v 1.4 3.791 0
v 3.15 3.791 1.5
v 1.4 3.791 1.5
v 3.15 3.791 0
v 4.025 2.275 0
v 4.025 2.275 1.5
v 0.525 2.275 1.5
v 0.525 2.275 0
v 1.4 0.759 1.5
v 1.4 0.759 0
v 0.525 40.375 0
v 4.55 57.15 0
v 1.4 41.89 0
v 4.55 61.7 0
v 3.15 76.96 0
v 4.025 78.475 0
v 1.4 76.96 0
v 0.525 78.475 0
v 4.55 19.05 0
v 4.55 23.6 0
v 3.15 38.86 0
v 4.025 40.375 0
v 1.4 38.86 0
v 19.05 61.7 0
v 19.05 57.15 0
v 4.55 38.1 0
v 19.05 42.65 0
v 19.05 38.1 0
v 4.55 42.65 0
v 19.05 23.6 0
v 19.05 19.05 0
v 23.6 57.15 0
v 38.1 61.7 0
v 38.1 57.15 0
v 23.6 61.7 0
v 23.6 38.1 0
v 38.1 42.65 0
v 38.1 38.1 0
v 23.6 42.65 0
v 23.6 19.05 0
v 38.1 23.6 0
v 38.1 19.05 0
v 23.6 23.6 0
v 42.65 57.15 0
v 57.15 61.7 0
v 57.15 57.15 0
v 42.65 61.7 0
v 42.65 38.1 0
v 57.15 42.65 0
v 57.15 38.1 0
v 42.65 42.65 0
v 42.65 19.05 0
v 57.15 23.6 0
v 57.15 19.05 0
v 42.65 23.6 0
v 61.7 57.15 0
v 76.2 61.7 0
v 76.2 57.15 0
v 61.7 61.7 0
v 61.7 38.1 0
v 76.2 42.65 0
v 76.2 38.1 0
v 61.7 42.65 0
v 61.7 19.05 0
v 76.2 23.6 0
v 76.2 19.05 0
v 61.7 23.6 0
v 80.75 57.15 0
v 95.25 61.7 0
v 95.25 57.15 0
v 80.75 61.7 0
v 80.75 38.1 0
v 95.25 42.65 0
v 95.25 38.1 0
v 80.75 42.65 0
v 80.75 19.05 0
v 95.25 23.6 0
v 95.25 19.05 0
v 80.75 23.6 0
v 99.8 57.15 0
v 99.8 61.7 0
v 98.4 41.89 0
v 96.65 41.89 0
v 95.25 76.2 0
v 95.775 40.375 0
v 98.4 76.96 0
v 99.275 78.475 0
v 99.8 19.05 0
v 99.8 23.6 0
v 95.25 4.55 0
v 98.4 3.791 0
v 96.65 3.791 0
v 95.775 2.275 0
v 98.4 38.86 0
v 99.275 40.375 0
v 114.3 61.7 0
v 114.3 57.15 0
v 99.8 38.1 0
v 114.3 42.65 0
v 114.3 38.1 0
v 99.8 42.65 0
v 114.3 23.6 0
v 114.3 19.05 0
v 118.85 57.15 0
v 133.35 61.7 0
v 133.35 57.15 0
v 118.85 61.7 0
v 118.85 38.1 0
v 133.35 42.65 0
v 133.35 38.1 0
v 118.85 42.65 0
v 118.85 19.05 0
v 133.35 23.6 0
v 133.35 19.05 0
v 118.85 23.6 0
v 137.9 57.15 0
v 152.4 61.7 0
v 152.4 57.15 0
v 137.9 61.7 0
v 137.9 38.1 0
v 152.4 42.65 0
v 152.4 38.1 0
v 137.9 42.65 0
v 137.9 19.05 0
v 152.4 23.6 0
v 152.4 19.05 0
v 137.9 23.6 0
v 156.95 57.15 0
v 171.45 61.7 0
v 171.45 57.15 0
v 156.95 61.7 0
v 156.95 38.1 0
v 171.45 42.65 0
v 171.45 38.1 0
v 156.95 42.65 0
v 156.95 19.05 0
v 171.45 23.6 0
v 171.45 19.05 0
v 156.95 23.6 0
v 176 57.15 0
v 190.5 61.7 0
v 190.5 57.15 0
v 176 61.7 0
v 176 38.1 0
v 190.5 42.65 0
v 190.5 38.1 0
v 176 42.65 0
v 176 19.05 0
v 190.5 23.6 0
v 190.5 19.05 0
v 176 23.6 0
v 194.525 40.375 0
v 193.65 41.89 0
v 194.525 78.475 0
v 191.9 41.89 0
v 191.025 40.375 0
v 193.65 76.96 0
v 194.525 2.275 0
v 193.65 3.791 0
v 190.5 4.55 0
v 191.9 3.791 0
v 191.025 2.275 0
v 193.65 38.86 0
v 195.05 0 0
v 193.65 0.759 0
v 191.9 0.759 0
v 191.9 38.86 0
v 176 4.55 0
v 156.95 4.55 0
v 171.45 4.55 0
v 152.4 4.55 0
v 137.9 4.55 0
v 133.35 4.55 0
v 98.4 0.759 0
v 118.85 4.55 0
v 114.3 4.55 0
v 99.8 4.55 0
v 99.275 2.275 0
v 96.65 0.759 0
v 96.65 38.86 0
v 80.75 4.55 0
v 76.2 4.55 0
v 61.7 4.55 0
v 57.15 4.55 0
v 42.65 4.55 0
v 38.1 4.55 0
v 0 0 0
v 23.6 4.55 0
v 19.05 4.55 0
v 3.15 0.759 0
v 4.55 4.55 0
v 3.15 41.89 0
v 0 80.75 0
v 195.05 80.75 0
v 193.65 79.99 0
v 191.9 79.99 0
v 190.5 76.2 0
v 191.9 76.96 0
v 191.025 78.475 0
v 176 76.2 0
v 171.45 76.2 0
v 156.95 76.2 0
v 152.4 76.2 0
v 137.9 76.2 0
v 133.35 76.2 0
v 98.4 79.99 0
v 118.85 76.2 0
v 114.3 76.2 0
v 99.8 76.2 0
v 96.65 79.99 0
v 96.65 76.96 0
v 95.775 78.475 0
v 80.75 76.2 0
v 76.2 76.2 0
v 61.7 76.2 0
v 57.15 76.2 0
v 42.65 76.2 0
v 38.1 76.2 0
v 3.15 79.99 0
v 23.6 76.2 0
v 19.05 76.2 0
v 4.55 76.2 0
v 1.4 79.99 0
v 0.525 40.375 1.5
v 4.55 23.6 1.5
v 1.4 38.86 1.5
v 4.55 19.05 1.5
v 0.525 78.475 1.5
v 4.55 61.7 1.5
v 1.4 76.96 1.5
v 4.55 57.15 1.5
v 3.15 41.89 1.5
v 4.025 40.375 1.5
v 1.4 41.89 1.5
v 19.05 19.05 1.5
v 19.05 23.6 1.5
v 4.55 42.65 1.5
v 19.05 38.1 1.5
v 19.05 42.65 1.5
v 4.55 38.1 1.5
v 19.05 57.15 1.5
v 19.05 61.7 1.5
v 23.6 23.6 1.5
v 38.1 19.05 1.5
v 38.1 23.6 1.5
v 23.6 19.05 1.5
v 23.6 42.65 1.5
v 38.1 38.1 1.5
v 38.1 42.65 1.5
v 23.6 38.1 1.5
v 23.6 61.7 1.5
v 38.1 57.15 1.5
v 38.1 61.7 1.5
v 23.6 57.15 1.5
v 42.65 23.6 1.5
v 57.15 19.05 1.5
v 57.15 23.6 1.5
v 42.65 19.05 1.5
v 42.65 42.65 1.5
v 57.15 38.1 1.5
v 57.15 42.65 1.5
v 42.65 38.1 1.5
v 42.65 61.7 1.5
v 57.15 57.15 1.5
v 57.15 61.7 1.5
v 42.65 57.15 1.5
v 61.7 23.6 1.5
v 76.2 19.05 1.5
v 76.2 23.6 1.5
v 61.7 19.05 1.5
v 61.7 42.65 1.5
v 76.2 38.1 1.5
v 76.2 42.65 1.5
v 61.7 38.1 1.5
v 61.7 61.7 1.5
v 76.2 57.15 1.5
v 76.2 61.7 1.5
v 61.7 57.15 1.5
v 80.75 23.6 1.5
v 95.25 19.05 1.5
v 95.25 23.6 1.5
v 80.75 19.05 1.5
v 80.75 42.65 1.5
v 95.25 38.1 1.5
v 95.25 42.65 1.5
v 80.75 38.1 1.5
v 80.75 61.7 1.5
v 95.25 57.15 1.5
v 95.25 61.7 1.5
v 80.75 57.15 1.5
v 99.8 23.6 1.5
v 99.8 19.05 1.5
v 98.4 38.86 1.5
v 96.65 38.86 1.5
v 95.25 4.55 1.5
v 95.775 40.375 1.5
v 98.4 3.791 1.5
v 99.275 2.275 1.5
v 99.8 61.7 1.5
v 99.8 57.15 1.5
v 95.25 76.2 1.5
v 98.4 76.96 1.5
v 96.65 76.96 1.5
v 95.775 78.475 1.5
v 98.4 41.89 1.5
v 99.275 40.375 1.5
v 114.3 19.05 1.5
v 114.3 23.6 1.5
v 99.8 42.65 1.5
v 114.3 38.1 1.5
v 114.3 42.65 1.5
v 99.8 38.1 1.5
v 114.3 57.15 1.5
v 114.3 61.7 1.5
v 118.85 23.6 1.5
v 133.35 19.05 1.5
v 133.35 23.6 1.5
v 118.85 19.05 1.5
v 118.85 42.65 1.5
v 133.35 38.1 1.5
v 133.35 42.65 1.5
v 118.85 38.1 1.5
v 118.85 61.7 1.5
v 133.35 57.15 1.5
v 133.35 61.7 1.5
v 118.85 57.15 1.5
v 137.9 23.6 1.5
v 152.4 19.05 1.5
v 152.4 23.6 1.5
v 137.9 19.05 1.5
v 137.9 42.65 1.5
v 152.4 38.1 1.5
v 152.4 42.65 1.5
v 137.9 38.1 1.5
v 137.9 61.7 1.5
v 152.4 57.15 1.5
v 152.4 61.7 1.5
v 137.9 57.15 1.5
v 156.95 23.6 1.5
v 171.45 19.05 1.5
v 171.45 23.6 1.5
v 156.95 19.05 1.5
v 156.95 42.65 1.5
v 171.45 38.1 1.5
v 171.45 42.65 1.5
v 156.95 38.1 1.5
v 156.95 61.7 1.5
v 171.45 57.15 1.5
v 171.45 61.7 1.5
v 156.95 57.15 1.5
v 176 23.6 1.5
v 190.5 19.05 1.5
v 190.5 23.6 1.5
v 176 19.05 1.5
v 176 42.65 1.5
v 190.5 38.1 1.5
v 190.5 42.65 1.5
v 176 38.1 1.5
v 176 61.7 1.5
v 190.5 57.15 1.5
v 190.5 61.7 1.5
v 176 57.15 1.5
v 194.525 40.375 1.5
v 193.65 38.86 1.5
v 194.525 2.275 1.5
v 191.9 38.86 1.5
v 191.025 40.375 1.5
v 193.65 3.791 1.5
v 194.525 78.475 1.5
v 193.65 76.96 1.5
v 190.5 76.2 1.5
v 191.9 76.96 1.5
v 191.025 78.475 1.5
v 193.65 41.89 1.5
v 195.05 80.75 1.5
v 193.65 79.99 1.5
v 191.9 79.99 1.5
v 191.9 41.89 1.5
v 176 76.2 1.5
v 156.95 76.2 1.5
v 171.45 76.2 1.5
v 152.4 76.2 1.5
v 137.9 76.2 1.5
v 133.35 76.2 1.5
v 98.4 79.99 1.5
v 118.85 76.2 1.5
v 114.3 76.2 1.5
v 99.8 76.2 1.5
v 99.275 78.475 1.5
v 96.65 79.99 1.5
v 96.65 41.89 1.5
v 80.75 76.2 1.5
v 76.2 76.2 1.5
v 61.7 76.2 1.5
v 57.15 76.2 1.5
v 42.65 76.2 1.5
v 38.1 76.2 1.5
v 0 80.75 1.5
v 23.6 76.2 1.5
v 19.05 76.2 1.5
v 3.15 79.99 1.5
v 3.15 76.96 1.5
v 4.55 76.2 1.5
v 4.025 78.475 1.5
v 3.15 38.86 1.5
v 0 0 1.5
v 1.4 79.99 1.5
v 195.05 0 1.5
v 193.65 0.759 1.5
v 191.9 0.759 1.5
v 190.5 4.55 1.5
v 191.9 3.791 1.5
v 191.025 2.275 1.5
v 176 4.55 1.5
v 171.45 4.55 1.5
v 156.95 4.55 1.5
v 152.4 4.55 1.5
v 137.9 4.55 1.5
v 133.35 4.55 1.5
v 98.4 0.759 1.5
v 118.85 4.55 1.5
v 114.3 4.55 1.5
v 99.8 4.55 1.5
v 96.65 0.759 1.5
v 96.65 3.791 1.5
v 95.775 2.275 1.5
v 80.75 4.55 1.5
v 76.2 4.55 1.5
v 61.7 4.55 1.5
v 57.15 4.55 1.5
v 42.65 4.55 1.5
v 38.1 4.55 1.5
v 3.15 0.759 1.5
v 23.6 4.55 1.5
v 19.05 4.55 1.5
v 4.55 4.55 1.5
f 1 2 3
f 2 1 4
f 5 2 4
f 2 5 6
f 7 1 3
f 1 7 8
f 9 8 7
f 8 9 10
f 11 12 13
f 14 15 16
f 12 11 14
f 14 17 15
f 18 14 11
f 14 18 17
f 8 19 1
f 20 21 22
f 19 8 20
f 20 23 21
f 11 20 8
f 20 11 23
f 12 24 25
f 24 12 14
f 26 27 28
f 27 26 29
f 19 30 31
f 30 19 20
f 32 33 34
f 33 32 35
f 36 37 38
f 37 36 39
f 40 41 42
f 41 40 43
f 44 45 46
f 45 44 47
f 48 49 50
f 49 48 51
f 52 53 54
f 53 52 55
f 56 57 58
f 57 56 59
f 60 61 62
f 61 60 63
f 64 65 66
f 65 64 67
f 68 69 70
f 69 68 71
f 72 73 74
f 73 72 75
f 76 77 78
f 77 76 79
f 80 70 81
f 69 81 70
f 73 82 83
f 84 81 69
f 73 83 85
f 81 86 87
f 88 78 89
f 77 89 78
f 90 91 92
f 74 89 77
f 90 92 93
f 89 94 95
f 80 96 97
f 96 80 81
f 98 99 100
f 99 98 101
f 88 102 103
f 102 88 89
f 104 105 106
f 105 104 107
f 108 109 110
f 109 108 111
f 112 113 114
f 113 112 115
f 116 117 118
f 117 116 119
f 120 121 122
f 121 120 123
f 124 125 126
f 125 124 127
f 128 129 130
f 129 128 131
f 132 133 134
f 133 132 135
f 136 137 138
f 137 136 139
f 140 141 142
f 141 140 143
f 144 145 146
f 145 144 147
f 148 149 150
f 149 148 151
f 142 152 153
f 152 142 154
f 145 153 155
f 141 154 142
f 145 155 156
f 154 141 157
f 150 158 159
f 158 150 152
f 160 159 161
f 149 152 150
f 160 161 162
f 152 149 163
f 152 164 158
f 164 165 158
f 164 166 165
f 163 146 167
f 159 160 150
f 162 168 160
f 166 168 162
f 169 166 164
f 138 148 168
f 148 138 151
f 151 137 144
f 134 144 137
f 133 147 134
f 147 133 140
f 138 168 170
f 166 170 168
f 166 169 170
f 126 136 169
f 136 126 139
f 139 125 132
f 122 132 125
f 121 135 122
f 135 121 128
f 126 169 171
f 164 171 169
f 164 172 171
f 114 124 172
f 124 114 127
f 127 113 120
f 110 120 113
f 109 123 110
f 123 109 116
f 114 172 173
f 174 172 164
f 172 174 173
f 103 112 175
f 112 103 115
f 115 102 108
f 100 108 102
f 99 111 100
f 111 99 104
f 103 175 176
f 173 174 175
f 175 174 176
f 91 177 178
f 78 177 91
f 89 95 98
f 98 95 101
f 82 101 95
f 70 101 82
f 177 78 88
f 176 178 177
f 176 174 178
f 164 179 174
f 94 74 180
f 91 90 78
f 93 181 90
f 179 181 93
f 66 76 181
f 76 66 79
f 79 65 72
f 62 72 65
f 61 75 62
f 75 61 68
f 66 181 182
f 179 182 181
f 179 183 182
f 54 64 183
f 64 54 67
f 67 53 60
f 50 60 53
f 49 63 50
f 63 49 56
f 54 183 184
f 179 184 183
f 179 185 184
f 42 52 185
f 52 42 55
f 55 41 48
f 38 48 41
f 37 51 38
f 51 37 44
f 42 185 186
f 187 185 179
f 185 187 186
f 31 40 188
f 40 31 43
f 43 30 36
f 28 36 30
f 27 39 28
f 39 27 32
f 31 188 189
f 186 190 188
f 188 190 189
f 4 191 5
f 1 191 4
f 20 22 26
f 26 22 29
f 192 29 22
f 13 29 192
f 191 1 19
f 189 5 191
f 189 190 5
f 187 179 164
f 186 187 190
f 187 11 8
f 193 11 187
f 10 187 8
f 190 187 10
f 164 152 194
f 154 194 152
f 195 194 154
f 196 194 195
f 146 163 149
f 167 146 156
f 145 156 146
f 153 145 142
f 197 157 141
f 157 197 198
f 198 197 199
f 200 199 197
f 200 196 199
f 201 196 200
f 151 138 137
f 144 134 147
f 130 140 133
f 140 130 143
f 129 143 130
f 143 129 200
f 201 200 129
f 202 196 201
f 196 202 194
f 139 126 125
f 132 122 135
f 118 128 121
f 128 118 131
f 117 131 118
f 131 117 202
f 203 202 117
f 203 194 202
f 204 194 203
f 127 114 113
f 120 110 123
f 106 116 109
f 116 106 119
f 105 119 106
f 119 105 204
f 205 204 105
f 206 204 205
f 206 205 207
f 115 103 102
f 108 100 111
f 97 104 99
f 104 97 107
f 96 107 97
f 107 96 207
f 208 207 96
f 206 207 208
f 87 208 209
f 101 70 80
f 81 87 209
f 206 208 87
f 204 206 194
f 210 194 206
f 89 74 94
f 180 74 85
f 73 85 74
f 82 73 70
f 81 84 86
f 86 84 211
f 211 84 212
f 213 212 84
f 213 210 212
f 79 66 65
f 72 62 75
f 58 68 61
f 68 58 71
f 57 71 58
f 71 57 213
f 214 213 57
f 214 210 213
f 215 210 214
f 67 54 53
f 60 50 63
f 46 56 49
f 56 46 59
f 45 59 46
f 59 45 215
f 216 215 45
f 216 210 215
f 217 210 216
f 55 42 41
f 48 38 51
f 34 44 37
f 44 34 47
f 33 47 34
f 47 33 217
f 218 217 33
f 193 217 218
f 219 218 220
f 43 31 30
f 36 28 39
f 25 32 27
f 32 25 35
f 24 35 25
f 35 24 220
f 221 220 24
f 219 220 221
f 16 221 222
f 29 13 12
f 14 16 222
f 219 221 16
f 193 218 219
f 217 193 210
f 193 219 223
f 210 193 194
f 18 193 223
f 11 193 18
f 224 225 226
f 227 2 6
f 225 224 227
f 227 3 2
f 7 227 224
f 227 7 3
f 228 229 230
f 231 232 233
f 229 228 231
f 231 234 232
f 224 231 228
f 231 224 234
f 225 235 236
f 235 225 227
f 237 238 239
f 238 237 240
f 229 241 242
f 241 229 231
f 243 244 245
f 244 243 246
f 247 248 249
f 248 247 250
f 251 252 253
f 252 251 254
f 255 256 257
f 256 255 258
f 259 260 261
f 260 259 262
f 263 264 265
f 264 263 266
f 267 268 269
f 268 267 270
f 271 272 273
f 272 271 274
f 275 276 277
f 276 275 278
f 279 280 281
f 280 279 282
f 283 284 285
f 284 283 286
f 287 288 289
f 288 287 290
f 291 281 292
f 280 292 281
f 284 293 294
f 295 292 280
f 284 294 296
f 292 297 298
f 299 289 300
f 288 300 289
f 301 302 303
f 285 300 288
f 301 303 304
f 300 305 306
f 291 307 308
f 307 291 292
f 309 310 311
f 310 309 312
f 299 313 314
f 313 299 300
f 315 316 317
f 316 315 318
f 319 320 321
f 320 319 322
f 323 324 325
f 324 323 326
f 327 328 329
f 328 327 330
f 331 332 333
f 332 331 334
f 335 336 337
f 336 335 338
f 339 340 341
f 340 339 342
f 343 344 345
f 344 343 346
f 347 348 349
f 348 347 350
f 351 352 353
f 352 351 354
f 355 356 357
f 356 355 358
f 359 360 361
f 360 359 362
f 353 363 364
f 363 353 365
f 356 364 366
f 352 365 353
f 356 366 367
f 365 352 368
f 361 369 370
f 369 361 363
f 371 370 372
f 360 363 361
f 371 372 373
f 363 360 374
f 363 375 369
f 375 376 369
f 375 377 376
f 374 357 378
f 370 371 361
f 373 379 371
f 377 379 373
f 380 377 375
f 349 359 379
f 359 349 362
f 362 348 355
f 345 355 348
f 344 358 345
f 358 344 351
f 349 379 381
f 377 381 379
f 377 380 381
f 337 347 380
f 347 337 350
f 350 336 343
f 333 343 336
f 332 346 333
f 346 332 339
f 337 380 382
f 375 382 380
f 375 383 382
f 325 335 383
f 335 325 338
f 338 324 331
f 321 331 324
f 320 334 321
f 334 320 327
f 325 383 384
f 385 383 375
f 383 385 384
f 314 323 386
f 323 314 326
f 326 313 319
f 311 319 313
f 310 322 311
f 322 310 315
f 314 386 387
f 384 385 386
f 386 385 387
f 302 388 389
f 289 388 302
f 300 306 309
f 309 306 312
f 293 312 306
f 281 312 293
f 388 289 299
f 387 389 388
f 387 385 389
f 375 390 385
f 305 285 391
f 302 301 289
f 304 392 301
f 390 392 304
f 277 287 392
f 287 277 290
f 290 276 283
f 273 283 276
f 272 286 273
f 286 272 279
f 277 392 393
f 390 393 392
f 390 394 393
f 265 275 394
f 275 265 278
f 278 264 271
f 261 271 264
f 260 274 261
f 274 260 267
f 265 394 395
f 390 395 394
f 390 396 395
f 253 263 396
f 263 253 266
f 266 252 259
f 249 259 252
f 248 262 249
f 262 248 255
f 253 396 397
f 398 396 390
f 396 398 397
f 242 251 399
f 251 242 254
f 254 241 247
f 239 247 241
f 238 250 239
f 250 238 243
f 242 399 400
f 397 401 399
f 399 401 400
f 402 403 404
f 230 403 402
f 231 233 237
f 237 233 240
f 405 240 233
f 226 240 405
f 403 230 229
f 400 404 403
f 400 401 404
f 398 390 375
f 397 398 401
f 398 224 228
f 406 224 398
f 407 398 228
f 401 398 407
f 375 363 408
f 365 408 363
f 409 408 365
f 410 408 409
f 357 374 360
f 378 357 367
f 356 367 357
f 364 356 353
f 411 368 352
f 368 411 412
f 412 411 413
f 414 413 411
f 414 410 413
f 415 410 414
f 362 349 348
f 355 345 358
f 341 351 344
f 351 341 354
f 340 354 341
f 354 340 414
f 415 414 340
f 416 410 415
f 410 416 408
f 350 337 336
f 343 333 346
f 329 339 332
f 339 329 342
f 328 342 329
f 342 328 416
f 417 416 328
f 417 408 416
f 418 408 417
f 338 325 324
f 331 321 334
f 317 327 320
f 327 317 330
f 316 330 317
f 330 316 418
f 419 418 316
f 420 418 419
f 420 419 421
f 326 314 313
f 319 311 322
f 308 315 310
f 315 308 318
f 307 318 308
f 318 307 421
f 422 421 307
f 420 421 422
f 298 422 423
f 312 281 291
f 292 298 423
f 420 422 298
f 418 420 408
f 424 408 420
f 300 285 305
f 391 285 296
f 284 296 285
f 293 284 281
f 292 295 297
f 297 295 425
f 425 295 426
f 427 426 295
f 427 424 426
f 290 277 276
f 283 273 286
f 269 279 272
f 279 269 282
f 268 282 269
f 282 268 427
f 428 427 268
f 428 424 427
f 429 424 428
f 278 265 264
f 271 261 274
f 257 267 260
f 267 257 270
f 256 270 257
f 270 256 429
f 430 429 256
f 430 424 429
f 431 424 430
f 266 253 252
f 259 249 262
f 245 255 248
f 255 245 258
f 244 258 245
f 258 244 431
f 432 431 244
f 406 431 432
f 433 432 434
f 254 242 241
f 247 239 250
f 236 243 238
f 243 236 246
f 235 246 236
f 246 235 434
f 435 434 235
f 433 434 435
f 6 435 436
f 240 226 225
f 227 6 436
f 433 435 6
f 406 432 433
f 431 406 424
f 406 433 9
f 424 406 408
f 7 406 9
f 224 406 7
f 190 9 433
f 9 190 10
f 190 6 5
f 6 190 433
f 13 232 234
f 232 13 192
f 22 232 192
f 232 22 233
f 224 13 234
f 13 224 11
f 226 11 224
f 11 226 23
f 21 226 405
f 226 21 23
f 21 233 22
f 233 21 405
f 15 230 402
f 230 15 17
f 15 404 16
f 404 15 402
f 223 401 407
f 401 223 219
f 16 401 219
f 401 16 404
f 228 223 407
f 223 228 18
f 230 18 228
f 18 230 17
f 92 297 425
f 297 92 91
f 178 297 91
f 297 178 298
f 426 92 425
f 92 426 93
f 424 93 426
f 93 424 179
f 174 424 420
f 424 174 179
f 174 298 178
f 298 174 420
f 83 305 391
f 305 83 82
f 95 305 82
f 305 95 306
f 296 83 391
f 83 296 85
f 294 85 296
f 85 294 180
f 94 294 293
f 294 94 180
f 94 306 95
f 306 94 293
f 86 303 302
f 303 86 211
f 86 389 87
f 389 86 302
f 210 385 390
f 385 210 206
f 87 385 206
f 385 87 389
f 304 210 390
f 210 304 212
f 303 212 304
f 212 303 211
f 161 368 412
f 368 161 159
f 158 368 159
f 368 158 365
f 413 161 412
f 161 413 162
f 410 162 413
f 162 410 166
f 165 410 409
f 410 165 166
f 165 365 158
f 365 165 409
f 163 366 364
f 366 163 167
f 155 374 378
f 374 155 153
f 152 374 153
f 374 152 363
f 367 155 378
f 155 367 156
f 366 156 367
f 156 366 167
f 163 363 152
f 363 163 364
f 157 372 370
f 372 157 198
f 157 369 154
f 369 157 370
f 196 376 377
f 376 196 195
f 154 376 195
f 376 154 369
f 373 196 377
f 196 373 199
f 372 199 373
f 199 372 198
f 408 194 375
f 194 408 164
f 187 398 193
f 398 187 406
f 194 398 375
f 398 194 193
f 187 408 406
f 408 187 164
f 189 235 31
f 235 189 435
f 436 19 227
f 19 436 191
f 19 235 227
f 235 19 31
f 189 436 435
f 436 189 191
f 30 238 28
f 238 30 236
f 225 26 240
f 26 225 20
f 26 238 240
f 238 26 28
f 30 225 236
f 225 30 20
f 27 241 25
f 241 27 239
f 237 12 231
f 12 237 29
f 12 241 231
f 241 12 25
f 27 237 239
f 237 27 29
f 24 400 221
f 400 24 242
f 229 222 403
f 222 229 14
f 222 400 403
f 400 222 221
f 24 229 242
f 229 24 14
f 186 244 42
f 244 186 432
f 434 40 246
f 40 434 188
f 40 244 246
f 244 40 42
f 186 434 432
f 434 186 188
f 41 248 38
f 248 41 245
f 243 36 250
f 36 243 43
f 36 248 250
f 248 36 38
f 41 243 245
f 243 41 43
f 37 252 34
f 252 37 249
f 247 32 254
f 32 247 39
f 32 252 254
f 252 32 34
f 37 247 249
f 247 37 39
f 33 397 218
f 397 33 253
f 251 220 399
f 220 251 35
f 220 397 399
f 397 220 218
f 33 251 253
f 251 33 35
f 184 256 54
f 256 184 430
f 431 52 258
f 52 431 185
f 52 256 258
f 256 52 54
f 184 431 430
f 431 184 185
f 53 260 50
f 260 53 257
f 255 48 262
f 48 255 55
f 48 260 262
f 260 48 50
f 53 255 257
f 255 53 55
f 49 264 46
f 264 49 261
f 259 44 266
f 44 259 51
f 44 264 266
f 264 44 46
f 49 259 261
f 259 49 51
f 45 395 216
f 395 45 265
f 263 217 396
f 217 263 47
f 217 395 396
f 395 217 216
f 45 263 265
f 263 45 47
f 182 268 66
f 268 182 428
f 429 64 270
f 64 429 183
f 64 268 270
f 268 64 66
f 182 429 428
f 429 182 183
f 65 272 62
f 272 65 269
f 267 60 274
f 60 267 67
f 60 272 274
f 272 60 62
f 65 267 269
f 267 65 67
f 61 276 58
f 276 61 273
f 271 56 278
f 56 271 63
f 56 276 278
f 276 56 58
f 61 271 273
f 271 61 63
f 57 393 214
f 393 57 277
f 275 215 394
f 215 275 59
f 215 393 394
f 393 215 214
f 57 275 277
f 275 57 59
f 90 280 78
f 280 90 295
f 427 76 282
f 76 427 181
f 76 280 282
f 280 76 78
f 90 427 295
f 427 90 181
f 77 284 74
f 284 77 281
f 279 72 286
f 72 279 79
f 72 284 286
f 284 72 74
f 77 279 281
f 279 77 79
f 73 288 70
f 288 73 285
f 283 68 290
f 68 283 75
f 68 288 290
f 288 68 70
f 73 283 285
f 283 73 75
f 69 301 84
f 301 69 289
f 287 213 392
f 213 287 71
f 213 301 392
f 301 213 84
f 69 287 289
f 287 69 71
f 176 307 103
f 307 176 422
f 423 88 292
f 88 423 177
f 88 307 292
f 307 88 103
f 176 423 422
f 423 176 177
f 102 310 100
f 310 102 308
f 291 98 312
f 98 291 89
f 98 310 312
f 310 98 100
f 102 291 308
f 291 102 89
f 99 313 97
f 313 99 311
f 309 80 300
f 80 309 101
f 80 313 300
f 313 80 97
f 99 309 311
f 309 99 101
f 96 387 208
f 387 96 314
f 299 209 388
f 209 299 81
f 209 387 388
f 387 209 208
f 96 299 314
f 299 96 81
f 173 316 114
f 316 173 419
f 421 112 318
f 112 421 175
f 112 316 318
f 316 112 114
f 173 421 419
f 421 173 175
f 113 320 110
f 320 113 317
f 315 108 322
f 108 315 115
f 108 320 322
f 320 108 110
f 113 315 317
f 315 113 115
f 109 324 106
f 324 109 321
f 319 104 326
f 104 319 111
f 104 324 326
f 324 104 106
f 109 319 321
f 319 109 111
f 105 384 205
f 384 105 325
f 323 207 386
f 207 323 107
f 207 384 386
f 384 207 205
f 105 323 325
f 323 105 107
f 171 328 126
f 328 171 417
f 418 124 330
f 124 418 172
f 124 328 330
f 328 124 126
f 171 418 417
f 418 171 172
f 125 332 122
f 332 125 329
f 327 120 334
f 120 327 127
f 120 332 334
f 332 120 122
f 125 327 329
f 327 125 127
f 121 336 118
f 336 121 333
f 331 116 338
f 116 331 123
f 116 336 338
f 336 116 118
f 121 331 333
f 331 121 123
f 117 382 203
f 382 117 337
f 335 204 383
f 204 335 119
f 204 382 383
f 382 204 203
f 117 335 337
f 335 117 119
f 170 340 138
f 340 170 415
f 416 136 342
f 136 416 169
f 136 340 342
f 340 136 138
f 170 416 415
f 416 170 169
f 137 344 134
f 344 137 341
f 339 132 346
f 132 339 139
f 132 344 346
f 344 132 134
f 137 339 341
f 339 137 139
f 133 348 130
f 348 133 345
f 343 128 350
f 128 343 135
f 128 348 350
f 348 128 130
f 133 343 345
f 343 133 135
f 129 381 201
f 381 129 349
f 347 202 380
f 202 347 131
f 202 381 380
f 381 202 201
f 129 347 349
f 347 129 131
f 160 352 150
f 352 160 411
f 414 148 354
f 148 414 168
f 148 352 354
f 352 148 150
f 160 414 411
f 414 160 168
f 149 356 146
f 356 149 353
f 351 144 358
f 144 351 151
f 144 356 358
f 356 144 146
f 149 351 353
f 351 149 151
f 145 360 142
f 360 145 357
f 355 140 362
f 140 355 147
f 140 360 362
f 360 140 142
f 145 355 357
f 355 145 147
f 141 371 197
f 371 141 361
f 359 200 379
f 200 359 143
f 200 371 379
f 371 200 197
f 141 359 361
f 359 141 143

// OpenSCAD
// file: basePlate.scad
include <vars.scad>;
module genPlate() {
	difference() {
		difference() {
			cube([(kc*width)+(kc-sw),(kc*height)+(kc-sw),thcP],0);
		}

		for(i = [0:2]) {
			for(j = [0:2]) {
				translate([(i*0.5*kc*width)+((kc-sw)/2),(j*0.5*kc*height)+((kc-sw)/2),0]) {
					cylinder(thcP,d1=screwD,d2=screwD,true);
				}
			}
		}
	}
}
// file: vars.scad
sw = 14.5;		// switch body footprint width
edge= 15.6;		// switch body (including edge) footprint width
clp = 5;		// width of switch clipping mechanism
clipDepth=1.5;	// depth(z) needed for clipping mechanism
kc = 19.05;		// overall switch footprint (including cap)
thcP = 1.5;		// thickness of plate
width = 10;		// no. of switches width(x) wise
height = 4;		// no. of switches height(y) wisw
screwD=3.5;		// screw diameter
feetD=4.5;		// foot screw diameter
// main file
include <vars.scad>;
use <basePlate.scad>;
difference() {
	genPlate();
	for(i = [0:width-1]) {
		for(j = [0:height-1]) {
			translate([(i*kc)+(kc/2)+((kc-sw)/2),(j*kc)+(kc/2)+((kc-sw)/2),thcP/2]) {
				union() {
					cube([sw,sw,thcP],true);
					translate([0,0,clipDepth/2]) {
						cube([clp,edge,thcP-clipDepth],true);
					}
				}
			}
		}
	}
}
